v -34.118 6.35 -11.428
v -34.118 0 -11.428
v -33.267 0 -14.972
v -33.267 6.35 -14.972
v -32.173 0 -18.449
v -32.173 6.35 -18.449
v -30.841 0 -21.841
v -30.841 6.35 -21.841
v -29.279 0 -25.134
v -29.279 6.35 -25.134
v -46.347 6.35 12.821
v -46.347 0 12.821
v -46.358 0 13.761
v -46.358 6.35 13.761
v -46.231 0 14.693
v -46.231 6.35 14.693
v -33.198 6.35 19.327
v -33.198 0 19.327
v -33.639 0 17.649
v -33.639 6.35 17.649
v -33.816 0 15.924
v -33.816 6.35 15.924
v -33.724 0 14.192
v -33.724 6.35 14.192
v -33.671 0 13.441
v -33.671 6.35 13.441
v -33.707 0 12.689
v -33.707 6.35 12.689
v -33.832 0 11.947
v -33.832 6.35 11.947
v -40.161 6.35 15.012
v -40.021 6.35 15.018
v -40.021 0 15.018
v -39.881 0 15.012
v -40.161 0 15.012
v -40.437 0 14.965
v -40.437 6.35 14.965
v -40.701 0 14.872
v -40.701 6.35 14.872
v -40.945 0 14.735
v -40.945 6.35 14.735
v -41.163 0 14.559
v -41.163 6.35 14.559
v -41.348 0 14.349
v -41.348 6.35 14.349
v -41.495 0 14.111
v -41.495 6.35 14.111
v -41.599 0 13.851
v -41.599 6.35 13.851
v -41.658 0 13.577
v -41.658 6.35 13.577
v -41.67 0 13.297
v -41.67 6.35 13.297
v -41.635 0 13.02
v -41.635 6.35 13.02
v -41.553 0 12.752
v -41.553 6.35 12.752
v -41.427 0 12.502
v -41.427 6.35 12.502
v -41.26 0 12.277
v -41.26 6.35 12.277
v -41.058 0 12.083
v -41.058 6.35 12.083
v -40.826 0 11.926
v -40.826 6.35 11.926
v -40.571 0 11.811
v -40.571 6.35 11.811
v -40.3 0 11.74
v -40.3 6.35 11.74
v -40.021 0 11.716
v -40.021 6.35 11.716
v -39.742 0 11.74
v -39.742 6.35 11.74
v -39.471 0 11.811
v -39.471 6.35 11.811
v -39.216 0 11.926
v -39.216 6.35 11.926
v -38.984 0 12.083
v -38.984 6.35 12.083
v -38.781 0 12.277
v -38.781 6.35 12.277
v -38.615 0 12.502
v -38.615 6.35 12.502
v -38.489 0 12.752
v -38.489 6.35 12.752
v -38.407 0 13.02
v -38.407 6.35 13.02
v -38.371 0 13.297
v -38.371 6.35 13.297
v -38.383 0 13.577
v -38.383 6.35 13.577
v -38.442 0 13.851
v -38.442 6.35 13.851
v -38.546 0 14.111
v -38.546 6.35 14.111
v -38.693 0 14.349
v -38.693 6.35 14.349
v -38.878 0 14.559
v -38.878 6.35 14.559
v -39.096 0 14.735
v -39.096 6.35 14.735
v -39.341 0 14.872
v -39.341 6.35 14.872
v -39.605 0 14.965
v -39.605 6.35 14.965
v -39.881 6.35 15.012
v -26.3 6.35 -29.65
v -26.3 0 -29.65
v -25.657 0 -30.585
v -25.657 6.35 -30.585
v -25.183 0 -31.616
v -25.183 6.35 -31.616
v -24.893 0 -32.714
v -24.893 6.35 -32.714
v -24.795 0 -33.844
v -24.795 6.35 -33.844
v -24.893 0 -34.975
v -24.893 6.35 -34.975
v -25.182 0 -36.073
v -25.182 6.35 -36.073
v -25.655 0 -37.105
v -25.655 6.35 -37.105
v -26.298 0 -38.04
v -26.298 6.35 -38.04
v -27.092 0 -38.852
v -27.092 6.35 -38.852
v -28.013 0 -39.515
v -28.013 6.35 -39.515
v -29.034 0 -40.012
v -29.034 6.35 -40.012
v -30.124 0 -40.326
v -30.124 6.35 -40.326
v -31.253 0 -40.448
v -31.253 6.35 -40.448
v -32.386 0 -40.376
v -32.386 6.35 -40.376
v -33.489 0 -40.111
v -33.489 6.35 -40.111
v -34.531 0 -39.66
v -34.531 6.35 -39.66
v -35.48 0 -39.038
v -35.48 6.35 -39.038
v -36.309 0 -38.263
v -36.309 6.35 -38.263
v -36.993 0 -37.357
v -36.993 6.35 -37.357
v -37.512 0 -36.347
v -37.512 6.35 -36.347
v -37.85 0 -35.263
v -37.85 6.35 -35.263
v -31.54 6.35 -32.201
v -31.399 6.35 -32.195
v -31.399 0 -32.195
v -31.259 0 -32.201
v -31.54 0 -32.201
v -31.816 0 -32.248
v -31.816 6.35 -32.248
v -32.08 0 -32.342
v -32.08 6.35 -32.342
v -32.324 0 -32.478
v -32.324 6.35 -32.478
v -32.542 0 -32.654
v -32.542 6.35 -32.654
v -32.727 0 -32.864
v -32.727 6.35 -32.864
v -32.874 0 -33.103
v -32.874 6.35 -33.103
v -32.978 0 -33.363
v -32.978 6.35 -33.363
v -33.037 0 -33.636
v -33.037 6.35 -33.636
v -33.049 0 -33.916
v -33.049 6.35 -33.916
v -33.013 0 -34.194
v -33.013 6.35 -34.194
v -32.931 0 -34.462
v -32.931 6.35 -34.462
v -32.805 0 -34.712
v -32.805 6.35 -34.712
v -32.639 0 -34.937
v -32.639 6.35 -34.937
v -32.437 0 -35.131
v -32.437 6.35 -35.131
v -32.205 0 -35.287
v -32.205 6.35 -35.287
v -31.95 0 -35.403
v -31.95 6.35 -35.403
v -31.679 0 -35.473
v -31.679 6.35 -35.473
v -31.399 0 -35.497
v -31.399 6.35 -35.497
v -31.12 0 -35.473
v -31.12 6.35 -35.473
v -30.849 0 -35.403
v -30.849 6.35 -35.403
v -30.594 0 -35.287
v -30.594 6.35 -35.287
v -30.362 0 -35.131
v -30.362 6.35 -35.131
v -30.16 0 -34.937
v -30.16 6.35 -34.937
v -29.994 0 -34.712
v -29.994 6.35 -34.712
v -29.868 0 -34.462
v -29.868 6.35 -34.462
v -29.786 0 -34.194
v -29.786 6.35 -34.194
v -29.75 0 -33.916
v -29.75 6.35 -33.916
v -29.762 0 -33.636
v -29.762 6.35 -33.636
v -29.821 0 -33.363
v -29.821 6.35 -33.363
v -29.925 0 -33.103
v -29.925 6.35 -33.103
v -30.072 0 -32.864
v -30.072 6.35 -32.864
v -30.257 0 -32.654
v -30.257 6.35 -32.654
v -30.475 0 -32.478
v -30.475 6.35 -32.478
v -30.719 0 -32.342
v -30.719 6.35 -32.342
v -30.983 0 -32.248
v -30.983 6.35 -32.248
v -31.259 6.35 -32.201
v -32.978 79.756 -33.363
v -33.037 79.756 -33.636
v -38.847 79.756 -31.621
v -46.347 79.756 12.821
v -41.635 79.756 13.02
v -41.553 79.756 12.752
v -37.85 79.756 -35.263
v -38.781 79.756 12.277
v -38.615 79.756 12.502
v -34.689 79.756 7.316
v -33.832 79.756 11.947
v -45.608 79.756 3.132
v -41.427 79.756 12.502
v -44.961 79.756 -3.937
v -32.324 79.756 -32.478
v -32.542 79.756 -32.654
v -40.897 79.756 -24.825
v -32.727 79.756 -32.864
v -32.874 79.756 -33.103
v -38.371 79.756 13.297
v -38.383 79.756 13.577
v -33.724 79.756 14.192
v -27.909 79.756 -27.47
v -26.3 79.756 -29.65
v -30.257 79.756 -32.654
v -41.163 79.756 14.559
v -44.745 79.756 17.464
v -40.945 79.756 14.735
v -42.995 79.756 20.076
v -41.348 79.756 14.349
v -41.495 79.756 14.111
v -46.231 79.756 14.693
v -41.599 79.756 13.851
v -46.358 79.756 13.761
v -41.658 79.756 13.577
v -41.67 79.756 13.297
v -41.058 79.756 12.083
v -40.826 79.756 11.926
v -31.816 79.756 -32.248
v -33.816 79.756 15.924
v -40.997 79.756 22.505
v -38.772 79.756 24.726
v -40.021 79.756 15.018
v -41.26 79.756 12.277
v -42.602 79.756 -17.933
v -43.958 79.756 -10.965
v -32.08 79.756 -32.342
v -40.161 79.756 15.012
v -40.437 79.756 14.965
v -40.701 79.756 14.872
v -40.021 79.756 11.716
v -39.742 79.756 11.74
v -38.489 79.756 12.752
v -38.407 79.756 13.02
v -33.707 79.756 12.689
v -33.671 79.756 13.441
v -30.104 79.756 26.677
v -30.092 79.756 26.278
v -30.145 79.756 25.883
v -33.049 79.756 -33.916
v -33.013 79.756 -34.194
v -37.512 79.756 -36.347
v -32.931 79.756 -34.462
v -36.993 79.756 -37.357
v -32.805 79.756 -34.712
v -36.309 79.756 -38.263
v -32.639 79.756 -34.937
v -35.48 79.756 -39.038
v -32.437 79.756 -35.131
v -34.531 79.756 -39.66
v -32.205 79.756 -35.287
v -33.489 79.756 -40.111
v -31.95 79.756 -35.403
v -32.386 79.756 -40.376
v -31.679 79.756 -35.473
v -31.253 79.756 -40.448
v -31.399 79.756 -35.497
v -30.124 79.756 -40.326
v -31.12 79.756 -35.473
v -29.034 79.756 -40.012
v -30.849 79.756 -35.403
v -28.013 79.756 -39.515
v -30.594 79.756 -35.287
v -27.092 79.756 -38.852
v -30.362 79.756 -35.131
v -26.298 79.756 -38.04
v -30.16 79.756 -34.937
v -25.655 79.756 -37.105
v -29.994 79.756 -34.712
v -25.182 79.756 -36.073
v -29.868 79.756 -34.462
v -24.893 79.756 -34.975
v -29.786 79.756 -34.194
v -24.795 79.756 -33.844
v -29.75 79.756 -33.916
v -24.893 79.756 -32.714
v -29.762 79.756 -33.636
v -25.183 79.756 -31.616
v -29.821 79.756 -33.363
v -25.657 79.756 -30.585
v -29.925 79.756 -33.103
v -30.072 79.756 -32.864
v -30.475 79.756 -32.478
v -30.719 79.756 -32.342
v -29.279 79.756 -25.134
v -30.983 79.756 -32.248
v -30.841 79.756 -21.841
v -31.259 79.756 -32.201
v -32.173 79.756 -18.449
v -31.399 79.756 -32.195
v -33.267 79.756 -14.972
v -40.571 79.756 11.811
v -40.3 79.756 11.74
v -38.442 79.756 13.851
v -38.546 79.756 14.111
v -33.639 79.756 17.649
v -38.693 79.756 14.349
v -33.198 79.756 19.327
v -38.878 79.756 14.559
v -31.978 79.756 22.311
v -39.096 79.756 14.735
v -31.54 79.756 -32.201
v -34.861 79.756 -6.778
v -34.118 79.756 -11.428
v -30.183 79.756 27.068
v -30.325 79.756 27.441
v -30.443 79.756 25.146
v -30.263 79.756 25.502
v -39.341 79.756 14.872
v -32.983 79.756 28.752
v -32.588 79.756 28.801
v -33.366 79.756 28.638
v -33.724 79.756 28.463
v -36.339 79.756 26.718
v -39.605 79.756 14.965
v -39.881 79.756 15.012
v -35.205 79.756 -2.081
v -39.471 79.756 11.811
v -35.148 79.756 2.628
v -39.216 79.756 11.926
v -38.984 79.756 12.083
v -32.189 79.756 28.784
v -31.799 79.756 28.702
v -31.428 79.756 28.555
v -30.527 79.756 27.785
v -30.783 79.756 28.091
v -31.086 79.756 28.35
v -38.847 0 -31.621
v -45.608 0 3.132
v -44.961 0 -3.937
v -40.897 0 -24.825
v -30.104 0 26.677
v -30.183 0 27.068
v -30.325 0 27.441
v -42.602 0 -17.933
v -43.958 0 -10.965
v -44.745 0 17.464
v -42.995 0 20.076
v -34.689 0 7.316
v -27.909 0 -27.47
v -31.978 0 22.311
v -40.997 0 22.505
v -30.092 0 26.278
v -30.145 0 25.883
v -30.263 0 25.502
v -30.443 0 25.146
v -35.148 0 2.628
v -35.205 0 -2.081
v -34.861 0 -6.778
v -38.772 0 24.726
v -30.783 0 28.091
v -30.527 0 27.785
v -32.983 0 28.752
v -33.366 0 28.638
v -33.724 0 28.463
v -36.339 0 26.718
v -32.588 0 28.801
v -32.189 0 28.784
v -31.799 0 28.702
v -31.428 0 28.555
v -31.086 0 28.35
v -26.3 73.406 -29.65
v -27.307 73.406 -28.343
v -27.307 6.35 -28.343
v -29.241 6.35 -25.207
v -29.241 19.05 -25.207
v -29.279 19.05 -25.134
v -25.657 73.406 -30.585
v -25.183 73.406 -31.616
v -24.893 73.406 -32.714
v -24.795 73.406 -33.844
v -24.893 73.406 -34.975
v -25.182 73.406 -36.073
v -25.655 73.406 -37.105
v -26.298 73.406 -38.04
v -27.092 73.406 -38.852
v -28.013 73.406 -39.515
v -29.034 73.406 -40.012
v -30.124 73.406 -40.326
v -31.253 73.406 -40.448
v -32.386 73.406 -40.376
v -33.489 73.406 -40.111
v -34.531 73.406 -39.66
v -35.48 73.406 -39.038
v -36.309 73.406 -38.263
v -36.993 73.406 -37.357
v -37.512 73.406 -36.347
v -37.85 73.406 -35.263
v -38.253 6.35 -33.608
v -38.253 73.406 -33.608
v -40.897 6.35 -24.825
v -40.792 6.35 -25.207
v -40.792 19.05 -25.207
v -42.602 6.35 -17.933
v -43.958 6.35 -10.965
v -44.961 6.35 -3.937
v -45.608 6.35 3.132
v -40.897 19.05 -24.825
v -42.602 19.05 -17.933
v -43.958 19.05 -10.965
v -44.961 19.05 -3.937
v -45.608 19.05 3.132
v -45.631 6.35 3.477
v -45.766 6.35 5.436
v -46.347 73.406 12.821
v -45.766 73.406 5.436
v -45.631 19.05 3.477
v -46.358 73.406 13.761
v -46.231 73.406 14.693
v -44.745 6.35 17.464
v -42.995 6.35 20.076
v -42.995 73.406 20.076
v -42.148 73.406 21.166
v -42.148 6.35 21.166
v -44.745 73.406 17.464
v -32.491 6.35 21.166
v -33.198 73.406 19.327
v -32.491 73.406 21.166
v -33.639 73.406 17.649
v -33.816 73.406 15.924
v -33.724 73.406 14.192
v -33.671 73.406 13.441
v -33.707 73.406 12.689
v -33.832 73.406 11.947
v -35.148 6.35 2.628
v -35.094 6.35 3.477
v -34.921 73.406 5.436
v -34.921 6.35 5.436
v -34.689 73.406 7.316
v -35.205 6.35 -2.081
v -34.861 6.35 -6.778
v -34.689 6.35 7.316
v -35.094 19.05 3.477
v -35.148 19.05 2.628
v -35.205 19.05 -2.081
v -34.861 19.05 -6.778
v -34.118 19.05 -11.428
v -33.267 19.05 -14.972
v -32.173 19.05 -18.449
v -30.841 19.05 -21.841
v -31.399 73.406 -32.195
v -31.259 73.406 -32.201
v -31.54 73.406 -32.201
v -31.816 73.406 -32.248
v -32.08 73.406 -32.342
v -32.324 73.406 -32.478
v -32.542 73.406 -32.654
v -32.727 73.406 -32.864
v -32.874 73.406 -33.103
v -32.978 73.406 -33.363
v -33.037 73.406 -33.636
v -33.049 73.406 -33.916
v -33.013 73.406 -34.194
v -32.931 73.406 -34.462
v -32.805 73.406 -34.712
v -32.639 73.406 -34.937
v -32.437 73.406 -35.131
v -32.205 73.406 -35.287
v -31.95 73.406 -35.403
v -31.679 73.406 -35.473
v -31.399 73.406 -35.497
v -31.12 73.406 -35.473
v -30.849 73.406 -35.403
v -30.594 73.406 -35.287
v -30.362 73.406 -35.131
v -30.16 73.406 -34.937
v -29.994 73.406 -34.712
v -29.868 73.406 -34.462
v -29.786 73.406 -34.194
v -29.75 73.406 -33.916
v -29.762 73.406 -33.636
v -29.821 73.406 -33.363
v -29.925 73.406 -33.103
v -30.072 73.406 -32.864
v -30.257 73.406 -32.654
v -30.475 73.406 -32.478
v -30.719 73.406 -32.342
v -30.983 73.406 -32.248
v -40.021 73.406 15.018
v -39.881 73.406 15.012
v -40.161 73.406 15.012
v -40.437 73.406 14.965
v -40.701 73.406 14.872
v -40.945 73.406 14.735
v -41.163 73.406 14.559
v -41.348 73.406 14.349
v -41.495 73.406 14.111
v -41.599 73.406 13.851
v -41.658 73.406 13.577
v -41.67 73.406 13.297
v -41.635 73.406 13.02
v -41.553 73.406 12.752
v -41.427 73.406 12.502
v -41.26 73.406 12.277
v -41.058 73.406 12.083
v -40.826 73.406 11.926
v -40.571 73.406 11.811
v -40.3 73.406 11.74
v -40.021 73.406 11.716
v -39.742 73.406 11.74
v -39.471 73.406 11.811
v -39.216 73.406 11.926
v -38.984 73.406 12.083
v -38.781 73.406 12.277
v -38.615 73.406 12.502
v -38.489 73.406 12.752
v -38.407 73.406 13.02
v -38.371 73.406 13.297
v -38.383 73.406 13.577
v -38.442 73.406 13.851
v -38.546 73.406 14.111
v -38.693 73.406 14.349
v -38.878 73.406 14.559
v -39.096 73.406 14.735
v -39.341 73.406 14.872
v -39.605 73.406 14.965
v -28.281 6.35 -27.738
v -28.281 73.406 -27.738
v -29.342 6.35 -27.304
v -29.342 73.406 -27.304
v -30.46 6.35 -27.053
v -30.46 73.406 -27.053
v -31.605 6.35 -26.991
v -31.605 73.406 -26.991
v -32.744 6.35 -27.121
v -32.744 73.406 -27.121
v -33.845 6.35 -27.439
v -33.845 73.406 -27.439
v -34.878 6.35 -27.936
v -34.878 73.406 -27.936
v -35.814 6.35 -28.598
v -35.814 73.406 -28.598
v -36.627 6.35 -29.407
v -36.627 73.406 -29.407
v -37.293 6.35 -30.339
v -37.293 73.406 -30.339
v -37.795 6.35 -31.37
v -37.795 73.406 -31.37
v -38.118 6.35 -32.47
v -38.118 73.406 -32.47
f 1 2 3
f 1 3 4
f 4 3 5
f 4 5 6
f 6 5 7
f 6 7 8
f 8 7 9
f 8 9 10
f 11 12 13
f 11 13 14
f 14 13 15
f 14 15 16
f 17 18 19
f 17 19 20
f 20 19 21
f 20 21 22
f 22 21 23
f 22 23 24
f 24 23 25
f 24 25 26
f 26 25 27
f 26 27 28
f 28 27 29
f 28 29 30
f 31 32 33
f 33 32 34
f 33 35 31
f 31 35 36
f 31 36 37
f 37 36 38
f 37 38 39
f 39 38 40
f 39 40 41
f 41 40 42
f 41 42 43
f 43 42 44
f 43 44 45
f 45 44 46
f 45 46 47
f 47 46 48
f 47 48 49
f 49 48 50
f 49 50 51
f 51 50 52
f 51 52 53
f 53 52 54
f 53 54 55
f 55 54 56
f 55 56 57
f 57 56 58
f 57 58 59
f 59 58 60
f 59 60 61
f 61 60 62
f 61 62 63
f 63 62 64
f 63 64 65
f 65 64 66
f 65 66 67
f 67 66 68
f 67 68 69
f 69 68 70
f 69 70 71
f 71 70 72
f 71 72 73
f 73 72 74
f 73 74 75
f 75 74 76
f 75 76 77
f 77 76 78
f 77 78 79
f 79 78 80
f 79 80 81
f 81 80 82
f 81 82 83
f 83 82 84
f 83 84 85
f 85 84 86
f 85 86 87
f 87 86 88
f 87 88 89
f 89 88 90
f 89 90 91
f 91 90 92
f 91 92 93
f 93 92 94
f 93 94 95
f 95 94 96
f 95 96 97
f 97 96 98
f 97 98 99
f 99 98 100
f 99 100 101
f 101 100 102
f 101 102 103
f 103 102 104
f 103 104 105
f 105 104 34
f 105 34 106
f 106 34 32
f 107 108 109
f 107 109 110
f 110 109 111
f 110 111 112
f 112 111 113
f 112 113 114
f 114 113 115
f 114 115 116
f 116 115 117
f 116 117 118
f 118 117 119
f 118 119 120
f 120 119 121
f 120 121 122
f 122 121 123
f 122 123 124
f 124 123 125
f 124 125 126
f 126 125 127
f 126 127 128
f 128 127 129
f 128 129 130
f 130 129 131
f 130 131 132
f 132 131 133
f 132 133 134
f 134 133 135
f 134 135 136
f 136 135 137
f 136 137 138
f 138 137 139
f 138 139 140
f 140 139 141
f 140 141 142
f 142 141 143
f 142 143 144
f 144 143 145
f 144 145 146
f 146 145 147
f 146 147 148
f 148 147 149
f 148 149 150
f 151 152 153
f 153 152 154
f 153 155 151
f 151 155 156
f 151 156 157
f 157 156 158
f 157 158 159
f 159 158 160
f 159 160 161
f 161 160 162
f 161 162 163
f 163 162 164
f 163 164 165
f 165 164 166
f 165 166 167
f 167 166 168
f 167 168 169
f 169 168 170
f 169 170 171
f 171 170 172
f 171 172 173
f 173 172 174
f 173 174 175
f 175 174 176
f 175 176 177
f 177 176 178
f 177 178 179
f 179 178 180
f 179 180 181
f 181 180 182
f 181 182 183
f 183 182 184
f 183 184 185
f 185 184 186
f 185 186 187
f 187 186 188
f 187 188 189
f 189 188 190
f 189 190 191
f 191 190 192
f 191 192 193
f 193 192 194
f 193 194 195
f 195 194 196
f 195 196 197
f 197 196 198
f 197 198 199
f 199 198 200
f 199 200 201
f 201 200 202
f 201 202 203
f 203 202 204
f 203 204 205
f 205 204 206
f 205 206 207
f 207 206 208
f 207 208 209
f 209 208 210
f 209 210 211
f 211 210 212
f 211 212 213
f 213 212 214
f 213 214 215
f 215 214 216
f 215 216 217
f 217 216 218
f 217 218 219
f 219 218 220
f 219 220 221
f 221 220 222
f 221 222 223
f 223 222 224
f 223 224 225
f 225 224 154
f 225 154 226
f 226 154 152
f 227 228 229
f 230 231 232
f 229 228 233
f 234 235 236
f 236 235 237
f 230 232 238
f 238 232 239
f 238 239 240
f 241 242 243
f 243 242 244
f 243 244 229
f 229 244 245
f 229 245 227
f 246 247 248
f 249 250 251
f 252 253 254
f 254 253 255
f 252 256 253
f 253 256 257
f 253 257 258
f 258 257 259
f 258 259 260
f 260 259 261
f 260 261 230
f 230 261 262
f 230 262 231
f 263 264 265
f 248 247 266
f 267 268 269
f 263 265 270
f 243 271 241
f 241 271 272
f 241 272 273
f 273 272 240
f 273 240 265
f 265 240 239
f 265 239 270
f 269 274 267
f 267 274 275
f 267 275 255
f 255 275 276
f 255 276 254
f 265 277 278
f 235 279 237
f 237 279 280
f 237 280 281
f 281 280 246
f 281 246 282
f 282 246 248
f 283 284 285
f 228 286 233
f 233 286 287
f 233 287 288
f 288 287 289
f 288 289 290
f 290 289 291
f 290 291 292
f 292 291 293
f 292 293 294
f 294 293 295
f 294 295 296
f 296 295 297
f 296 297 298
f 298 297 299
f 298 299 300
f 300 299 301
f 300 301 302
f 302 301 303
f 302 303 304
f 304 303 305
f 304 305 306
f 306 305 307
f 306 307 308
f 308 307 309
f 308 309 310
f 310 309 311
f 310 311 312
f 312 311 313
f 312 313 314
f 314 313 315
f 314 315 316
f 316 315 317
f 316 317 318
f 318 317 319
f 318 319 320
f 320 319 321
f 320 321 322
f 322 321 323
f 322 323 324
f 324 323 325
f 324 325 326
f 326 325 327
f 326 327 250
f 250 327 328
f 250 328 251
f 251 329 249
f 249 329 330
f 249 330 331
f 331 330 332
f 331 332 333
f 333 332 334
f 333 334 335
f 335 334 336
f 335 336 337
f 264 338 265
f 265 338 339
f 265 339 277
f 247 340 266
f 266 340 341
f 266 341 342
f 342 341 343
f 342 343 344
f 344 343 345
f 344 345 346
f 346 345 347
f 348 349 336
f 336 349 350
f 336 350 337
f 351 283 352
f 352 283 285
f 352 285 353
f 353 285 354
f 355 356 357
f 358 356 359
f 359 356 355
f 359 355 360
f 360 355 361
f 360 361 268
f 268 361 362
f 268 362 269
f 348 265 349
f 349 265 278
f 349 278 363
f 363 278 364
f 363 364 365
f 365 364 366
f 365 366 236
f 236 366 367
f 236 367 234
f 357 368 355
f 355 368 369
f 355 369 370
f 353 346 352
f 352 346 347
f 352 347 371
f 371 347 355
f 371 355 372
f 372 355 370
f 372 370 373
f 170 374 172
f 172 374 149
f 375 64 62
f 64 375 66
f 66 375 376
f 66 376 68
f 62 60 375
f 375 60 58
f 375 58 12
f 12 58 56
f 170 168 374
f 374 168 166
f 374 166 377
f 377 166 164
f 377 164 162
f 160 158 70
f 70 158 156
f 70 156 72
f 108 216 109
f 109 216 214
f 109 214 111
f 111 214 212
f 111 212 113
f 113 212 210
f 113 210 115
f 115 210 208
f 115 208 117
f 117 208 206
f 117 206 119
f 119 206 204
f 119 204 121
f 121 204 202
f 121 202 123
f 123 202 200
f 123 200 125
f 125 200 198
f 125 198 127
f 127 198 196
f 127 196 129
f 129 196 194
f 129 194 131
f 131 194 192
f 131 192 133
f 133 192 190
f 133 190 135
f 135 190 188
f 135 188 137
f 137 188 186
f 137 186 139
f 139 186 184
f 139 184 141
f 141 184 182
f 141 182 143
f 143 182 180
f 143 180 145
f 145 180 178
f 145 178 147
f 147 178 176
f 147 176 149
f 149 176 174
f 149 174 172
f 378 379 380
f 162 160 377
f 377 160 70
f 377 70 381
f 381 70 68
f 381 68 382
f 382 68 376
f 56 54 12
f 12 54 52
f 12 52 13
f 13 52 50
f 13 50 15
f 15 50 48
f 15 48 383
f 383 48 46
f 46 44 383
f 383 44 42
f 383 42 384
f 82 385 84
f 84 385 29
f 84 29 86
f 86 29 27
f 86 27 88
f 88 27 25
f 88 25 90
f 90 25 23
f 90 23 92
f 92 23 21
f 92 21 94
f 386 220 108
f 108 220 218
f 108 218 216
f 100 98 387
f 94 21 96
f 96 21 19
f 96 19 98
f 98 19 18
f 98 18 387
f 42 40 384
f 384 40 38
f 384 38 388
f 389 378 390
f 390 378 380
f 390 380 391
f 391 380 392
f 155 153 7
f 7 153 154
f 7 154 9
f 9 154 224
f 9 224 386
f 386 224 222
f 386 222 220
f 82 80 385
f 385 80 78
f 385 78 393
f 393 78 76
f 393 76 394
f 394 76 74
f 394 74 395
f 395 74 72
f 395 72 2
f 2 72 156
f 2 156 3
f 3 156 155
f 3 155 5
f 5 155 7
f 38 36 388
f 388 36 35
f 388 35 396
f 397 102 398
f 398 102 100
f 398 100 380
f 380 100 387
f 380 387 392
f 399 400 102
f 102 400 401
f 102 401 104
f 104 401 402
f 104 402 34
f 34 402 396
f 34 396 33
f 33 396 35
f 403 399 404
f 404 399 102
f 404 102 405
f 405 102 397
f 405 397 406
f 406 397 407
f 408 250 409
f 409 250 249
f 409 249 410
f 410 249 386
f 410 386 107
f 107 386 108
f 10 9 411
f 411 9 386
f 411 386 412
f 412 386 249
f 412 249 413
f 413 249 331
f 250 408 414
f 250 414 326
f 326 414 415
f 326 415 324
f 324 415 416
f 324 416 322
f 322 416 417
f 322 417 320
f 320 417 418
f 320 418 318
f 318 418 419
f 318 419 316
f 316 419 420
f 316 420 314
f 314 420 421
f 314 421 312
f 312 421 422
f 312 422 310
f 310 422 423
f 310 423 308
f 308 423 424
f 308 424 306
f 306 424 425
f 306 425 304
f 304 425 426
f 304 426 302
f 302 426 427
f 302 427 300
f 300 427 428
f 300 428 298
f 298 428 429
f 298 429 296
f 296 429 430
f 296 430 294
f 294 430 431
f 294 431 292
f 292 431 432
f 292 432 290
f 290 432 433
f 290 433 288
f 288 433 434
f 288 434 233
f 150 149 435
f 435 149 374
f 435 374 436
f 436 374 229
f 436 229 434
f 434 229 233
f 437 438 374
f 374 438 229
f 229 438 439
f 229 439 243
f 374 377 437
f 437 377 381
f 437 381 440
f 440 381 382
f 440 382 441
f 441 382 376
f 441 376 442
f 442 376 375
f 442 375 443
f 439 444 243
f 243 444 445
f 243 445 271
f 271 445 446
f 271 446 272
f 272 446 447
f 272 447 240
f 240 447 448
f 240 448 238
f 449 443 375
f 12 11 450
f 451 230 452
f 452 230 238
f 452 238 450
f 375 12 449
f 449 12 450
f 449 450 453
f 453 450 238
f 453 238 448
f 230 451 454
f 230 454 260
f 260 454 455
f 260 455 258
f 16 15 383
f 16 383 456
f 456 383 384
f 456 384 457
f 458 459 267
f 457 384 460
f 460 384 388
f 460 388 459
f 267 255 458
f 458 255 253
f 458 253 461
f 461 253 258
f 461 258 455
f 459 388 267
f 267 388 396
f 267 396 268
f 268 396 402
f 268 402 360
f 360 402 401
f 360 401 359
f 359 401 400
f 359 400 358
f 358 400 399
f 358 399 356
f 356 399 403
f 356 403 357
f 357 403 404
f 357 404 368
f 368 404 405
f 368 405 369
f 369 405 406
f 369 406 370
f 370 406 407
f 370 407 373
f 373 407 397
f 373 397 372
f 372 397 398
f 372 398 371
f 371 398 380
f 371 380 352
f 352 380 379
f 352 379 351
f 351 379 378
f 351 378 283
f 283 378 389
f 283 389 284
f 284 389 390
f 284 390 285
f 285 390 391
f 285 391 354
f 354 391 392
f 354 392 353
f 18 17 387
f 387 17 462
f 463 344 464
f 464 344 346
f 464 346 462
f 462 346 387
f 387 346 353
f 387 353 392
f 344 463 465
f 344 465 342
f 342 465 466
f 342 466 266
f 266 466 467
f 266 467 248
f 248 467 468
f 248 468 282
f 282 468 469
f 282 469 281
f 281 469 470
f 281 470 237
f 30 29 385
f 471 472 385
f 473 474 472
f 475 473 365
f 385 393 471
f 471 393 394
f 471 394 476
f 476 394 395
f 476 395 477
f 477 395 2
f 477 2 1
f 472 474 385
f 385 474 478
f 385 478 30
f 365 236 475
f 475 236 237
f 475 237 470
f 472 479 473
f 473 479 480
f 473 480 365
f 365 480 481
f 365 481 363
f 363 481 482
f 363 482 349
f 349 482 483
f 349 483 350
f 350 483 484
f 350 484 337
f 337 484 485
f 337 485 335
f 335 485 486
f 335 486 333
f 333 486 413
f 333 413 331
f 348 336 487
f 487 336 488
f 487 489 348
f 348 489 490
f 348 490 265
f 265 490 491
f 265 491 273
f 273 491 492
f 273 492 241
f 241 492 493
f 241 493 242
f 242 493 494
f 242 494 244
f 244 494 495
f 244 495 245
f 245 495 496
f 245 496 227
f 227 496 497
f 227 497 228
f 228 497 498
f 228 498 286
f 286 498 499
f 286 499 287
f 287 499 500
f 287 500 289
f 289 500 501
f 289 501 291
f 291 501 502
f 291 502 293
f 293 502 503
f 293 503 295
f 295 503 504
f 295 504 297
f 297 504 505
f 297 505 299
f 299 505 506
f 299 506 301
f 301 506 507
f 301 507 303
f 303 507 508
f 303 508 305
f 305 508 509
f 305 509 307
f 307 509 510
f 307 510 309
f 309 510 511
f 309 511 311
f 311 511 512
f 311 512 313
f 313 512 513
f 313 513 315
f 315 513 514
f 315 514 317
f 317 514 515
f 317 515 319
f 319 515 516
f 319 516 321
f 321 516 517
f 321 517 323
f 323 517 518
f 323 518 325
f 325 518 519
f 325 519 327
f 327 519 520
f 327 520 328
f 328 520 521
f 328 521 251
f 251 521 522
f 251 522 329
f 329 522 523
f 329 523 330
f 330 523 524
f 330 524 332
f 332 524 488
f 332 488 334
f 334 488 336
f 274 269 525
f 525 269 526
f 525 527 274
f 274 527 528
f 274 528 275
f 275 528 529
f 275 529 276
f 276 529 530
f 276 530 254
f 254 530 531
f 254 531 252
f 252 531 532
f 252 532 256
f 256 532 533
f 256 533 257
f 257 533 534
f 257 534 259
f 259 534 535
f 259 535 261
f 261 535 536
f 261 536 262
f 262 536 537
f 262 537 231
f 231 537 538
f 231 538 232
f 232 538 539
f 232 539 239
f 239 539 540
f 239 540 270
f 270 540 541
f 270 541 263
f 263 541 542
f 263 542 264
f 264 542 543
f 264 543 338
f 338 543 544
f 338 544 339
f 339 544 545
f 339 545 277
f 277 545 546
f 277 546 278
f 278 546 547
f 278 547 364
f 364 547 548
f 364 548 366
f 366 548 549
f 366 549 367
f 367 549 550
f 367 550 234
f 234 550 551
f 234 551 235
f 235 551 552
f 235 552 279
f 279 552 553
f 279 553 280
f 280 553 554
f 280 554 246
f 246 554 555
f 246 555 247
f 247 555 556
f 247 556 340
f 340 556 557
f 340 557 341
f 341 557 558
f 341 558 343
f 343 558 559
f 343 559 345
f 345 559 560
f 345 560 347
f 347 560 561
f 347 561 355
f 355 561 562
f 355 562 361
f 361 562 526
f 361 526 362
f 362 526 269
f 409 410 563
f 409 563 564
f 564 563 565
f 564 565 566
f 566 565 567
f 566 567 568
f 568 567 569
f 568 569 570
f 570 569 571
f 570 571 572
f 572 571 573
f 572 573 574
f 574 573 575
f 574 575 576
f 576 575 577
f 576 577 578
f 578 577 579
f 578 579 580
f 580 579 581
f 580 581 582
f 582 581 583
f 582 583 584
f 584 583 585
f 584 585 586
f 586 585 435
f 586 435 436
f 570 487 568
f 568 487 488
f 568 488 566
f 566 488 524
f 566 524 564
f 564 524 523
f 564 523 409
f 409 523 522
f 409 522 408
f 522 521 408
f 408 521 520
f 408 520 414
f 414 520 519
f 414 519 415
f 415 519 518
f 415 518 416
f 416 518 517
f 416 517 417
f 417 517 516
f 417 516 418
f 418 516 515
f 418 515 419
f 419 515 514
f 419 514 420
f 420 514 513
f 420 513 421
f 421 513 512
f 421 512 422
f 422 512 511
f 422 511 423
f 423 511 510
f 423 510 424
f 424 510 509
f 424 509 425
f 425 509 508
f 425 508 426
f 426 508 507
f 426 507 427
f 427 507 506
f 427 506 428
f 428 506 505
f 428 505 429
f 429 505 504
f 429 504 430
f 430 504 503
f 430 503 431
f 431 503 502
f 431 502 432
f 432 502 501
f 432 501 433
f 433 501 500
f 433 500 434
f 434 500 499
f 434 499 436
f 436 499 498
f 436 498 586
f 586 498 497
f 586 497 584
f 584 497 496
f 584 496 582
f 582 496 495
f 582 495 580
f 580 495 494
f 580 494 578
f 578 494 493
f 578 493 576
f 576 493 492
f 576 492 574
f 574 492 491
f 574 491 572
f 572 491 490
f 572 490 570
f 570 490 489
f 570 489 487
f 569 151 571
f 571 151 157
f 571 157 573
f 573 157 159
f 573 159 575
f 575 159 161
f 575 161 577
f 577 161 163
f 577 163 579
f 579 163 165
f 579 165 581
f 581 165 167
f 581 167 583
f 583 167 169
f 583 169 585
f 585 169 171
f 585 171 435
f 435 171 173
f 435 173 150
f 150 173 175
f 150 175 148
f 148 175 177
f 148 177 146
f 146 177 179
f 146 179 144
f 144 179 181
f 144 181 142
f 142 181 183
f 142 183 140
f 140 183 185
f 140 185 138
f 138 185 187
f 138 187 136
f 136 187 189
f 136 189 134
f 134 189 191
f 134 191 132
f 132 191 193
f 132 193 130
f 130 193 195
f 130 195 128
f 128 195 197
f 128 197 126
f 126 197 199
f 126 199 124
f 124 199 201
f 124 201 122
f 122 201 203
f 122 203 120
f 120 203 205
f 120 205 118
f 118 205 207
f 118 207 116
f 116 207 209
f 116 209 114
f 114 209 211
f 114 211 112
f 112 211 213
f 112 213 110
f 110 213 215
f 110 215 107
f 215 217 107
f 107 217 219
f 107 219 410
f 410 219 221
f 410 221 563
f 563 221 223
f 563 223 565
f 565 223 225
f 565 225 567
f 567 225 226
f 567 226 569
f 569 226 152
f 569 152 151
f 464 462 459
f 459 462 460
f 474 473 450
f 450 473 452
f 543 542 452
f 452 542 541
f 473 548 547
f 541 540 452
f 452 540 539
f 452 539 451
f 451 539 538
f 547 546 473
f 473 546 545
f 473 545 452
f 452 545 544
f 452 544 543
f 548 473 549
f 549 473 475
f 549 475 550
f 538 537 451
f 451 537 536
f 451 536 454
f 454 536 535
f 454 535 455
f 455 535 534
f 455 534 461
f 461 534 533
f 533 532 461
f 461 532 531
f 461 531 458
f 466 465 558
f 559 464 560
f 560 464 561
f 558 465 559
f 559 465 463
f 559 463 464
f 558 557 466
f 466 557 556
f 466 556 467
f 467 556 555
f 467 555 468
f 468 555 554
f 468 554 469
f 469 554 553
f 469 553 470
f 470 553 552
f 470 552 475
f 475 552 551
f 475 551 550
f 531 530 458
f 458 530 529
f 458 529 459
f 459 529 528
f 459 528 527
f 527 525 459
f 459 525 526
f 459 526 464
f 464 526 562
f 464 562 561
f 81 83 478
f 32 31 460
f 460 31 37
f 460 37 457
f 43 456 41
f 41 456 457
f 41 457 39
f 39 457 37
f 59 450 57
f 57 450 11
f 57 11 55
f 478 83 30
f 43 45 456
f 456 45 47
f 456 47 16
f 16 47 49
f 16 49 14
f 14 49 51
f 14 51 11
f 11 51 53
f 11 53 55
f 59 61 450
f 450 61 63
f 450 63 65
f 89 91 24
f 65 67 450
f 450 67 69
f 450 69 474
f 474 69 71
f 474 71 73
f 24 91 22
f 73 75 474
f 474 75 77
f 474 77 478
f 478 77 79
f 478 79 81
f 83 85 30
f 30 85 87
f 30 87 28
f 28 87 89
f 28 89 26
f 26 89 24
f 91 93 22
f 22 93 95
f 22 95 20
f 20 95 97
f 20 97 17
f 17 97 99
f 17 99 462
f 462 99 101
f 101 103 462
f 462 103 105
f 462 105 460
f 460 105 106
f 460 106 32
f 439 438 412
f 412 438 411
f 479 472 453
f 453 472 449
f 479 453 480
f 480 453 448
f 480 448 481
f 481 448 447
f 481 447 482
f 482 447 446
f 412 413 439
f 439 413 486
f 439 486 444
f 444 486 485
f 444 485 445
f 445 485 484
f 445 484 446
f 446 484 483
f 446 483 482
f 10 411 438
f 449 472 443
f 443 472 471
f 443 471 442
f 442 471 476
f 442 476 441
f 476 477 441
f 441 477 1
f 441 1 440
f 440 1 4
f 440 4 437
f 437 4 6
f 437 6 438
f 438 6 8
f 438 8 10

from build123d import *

# Parameters (mm, degrees)
SKETCH1_R           = 1.651
BOSS_EXTRUDE1_DEPTH = 79.756
SKETCH3_R           = 6.858
CUT_EXTRUDE2_DEPTH  = 67.056
CUT_EXTRUDE3_DEPTH  = 12.7


with BuildPart() as part:
    # Sketch1 → Boss-Extrude1 (new body)
    with BuildSketch(Plane(origin=(0, 0, 0), x_dir=(1, 0, 0), z_dir=(0, 1, 0))):
        with BuildLine():
            ThreePointArc((-46.347101967, -12.820550524), (-45.953093742, -7.978326418), (-45.607903753, -3.132377527))
            ThreePointArc((-45.607903753, -3.132377527), (-43.324155634, 14.457824244), (-38.846810395, 31.621276211))
            ThreePointArc((-38.846810395, 31.621276211), (-38.301804917, 33.429574735), (-37.849619012, 35.263287481))
            ThreePointArc((-37.849619012, 35.263287481), (-28.512474187, 39.785530688), (-26.300260653, 29.649502453))
            ThreePointArc((-26.300260653, 29.649502453), (-27.908796698, 27.470225182), (-29.278925969, 25.133692836))
            ThreePointArc((-29.278925969, 25.133692836), (-32.172639115, 18.448511751), (-34.117731608, 11.428409395))
            ThreePointArc((-34.117731608, 11.428409395), (-35.22666999, -0.274420306), (-33.831690761, -11.946609488))
            ThreePointArc((-33.831690761, -11.946609488), (-33.67793303, -13.064327384), (-33.724408967, -14.191613825))
            ThreePointArc((-33.724408967, -14.191613825), (-33.760843575, -16.790093108), (-33.198139816, -19.327175397))
            ThreePointArc((-33.198139816, -19.327175397), (-31.977523501, -22.310967081), (-30.442888304, -25.146070573))
            ThreePointArc((-30.442888304, -25.146070573), (-30.782899932, -28.090653785), (-33.723620439, -28.462596122))
            ThreePointArc((-33.723620439, -28.462596122), (-40.997268986, -22.504520927), (-46.230736135, -14.693282563))
            ThreePointArc((-46.230736135, -14.693282563), (-46.358471746, -13.761238335), (-46.347101967, -12.820550524))
        make_face()
        with Locations((-31.399492492, 33.846007028)):
            Circle(SKETCH1_R, mode=Mode.SUBTRACT)
        with Locations((-40.020695033, -13.367428306)):
            Circle(SKETCH1_R, mode=Mode.SUBTRACT)
    extrude(amount=BOSS_EXTRUDE1_DEPTH)

    # Sketch3 → Cut-Extrude2 (cut)
    with BuildSketch(Plane(origin=(0, 6.35, 0), x_dir=(-1, 0, 0), z_dir=(0, 1, 0))):
        with Locations((31.399492492, -33.846007028)):
            Circle(SKETCH3_R)
        with BuildLine():
            Line((33.192444355, 5.435760509), (47.285899843, 5.435760509))
            Line((47.285899843, 5.435760509), (46.632941201, 11.116111886))
            ThreePointArc((46.632941201, 11.116111886), (46.99317865, 13.785396267), (46.316644417, 16.392531007))
            Line((46.316644417, 16.392531007), (44.60108667, 21.165715919))
            Line((44.60108667, 21.165715919), (30.194900336, 21.165715919))
            Line((30.194900336, 21.165715919), (33.055086417, 12.847311389))
            ThreePointArc((33.055086417, 12.847311389), (33.189965557, 11.90751056), (33.451045025, 10.994682267))
            Line((33.451045025, 10.994682267), (33.192444355, 5.435760509))
        make_face()
    extrude(amount=CUT_EXTRUDE2_DEPTH, mode=Mode.SUBTRACT)

    # Sketch4 → Cut-Extrude3 (cut)
    with BuildSketch(Plane(origin=(0, 6.35, 0), x_dir=(-1, 0, 0), z_dir=(0, 1, 0))):
        Polygon((28.455486036, -25.206679833), (46.063076484, -25.206679833), (52.862178533, 3.477031937), (29.73031767, 3.477031937), align=None)
    extrude(amount=CUT_EXTRUDE3_DEPTH, mode=Mode.SUBTRACT)


solid = part.part
